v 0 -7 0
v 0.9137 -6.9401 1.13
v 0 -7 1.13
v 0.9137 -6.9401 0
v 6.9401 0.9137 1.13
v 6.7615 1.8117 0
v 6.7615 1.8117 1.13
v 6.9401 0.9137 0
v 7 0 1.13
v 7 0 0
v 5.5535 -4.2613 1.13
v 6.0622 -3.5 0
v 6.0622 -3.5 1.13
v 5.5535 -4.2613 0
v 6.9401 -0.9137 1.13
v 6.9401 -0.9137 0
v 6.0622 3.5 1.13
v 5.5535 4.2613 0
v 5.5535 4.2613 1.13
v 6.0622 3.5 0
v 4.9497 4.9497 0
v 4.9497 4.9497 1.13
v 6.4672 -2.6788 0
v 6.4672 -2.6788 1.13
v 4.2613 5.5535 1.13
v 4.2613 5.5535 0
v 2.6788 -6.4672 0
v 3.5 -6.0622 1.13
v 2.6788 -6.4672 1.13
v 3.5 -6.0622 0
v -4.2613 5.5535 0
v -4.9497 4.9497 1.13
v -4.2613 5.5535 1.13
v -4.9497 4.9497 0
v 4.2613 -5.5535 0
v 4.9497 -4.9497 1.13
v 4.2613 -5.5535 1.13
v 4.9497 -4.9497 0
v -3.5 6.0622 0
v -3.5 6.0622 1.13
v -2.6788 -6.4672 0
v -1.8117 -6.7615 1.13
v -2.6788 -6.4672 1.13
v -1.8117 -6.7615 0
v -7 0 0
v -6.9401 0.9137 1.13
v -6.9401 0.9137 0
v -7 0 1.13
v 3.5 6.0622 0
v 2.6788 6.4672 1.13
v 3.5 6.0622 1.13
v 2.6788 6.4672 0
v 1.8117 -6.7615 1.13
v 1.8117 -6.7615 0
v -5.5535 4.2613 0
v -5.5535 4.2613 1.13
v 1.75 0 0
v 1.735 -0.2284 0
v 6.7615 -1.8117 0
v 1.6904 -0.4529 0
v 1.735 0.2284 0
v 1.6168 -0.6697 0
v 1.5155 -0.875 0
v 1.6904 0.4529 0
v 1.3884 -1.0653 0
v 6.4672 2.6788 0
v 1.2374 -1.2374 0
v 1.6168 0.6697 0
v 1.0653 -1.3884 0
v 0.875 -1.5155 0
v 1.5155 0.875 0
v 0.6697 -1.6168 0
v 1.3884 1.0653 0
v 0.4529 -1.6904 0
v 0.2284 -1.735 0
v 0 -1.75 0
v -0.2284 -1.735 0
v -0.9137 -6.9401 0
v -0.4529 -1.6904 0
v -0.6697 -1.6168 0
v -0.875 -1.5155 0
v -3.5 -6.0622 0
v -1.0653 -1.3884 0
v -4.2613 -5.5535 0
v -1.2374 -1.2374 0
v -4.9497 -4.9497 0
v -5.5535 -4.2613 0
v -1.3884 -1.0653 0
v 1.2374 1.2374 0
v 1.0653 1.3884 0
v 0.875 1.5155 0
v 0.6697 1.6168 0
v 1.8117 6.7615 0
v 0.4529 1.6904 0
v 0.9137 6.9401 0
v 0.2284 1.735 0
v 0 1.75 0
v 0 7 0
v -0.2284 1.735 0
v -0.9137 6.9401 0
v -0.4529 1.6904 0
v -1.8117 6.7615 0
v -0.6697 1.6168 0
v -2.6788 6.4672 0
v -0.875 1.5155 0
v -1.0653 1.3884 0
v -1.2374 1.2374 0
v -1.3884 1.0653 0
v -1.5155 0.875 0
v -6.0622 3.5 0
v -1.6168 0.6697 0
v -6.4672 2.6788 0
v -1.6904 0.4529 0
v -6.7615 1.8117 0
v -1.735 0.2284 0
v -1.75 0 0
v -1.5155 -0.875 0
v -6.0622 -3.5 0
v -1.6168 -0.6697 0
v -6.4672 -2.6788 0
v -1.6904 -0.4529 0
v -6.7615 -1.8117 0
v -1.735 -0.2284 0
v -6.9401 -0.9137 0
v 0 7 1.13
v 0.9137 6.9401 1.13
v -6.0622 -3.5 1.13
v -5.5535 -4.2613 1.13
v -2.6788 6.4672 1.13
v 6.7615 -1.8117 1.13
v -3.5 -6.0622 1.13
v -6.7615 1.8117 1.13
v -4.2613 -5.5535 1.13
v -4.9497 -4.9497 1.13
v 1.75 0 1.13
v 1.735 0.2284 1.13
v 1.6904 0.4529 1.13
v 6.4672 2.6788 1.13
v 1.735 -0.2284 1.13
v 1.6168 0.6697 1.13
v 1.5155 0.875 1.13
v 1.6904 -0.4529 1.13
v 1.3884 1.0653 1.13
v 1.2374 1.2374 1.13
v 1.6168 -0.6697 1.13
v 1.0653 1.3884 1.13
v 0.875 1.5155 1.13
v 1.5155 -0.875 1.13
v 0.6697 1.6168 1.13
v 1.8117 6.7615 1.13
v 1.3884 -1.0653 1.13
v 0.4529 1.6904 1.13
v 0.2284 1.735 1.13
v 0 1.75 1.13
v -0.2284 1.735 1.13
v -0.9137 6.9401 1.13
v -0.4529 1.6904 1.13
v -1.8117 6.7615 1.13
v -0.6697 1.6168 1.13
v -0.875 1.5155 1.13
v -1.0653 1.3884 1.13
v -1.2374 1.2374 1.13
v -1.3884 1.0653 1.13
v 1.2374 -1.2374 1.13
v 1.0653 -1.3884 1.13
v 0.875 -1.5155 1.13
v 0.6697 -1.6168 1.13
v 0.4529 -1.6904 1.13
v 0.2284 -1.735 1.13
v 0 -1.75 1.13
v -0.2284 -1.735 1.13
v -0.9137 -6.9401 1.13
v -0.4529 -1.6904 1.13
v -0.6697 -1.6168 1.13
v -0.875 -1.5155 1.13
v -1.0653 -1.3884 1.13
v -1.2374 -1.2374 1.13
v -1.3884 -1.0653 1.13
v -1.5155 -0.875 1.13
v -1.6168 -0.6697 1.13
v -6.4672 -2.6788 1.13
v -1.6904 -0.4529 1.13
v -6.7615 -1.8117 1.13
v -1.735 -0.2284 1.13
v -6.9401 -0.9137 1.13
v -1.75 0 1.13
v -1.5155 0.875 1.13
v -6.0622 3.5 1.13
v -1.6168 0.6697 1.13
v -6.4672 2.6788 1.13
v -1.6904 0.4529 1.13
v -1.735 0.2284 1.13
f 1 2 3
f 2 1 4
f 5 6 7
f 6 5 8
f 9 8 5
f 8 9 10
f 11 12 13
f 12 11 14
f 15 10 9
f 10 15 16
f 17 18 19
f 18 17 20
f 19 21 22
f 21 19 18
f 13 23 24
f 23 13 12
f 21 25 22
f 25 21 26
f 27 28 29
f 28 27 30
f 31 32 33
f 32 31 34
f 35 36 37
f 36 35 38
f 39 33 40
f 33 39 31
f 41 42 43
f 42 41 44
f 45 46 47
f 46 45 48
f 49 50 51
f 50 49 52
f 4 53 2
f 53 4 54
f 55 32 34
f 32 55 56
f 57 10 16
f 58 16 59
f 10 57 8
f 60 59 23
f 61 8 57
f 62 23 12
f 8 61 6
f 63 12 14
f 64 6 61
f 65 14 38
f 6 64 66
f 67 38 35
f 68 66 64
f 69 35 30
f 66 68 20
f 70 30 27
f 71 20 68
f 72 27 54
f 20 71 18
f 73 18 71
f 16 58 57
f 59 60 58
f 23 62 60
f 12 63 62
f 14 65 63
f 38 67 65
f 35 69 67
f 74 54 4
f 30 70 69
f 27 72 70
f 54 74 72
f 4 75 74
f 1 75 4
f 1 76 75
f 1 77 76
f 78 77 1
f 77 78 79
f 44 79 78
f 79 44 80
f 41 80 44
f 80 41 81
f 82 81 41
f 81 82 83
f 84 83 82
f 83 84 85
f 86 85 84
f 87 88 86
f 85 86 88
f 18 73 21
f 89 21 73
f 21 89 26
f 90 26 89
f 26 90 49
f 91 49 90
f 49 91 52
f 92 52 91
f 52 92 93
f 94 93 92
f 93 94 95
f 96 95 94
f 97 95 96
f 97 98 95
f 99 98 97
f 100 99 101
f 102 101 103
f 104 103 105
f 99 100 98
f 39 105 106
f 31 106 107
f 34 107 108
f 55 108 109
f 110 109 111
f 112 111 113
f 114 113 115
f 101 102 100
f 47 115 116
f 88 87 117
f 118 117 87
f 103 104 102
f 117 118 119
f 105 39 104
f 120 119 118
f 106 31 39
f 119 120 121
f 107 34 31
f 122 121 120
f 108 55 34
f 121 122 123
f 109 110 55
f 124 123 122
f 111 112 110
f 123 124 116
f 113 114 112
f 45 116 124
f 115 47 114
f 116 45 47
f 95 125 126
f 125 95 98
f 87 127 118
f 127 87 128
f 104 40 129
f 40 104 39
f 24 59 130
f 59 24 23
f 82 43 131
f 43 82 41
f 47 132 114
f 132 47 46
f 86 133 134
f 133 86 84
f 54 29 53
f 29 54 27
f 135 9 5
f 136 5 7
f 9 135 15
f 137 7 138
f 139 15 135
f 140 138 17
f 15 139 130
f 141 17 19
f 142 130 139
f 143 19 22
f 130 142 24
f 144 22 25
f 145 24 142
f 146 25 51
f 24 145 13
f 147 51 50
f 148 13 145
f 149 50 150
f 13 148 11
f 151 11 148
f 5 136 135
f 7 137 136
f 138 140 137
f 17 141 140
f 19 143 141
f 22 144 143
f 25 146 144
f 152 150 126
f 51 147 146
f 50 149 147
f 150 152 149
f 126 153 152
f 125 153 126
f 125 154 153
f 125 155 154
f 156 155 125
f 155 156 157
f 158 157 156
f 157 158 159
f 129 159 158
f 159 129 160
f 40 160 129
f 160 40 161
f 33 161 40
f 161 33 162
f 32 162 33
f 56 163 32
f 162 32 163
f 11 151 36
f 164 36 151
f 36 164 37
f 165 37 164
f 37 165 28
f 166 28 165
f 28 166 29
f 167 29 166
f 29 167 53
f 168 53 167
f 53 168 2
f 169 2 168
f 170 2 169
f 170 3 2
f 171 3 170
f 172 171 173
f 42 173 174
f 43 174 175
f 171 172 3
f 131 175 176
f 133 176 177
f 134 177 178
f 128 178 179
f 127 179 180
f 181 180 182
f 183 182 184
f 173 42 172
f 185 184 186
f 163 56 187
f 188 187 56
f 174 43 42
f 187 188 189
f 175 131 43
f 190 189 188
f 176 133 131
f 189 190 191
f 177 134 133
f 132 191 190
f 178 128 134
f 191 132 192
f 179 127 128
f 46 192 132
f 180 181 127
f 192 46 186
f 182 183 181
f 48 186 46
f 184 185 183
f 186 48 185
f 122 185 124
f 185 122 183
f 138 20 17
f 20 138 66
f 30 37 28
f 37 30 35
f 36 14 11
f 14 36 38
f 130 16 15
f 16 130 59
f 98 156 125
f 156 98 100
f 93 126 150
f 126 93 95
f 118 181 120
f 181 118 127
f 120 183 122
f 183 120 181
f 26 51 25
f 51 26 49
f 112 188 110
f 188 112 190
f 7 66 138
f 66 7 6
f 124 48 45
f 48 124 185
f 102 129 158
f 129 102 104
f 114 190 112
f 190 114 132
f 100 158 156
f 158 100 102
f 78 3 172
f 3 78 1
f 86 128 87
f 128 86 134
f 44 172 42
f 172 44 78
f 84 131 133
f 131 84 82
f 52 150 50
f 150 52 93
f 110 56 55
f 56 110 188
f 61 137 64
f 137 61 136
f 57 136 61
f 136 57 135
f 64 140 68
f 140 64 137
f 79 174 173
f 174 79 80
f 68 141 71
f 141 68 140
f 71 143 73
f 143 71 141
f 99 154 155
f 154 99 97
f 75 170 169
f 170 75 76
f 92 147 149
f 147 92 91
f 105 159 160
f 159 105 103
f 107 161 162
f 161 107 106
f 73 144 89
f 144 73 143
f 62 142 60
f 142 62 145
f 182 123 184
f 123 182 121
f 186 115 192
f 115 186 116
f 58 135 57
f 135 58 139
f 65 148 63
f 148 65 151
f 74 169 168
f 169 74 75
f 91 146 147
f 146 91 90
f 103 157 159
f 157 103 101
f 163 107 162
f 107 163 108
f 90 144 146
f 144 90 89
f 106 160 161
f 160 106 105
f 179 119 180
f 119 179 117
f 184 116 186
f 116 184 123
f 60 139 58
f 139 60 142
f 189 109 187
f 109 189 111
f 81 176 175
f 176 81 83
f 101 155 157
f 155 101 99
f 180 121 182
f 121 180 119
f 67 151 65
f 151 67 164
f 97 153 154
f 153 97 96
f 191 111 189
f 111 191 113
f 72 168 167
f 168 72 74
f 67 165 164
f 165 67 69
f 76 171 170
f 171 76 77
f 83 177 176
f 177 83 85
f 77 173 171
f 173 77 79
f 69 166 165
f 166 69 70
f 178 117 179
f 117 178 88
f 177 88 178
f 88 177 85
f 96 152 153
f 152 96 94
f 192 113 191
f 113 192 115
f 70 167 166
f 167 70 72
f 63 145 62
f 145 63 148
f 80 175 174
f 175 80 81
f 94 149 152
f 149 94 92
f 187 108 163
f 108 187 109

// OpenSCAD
// file: parameters.scad
// =============================================================================
// Gen-AV Vernier flux-claw hyper - WOUND-AWARE (HARD GATE)
// Dual-rotor vernier: Rotor B +22.5 deg vs 12-slot stator; O5 flux claws
// =============================================================================

wire_awg            = 26;
wire_od             = 0.45;
turns               = 205;      // +5 vs Gen-AS 200
fill                = 0.70;
layers_per_face     = 2;
wind_build_axial    = layers_per_face * wire_od * fill;   // 0.63 mm
wind_build_radial   = 3 * wire_od * fill;                 // 0.945 mm

coil_id_r           = 15.0;
coil_od_r           = 62.0;
span_deg            = 25.0;
former_web          = 1.22;     // thinner vs AS 1.25
flange_t            = 0.60;
wall                = 1.2;
slot_w              = 2.4;
mount_hole          = 3.5;
tab_len             = 7.0;

former_bare_h       = former_web + 2 * flange_t;            // 2.42 mm
coil_envelope_h     = former_bare_h + 2 * wind_build_axial; // 3.68 mm

run_clear           = 0.50;
gap_spacer_h        = run_clear + wind_build_axial;         // 1.13 mm
m2m                 = coil_envelope_h + 2 * run_clear;      // 4.68 mm

coil_stations       = 12;
bay_r_in            = coil_id_r - 2.0 - wind_build_radial;
bay_r_out           = coil_od_r + 2.0 + wind_build_radial;
bay_span            = span_deg + 4.0;
bay_offset          = 2.0;
stator_thick        = former_bare_h;
stator_od           = 160.0;
shaft_clear_stator  = 34.0;
coil_mount_r        = 25.5;

large_pocket_d      = 20.3;
small_pocket_d      = 5.3;
pocket_h            = 5.2;
large_n             = 8;
R_large             = 38.5;     // closer to copper centroid vs AS R=39.0
R_small_inner       = 24.5;
R_small_mid         = 38.5;
R_small_outer       = 54.5;
carrier_od          = 156.0;
carrier_thick       = 7.5;
hub_h               = 10.0;
hub_od              = 30.0;
rotor_b_offset_deg  = 22.5;     // vernier offset vs 12-slot stator

shaft_bore          = 8.35;
bearing_d           = 21.85;
bearing_h           = 7.2;
m3_clear            = 3.5;
bolt_r_inner        = 36.0;
bolt_n_inner        = 6;
flange_bolt_r       = 72.0;
flange_bolt_n       = 6;
brace_r             = 68.0;
brace_d             = 4.3;
brace_n             = 4;

spacer_pad_od       = 14.0;
spacer_pad_id       = m3_clear;
endbell_od          = 160.0;
endbell_thick       = 8.0;
endbell_shaft_clear = 10.0;

$fn = 64;
// main file
// Gen-AV gap spacer — h = run_clear + wind_build_axial
include <parameters.scad>;
$fn = 48;
difference() {
    cylinder(d=spacer_pad_od, h=gap_spacer_h);
    translate([0, 0, -0.1]) cylinder(d=spacer_pad_id, h=gap_spacer_h + 0.2);
}
